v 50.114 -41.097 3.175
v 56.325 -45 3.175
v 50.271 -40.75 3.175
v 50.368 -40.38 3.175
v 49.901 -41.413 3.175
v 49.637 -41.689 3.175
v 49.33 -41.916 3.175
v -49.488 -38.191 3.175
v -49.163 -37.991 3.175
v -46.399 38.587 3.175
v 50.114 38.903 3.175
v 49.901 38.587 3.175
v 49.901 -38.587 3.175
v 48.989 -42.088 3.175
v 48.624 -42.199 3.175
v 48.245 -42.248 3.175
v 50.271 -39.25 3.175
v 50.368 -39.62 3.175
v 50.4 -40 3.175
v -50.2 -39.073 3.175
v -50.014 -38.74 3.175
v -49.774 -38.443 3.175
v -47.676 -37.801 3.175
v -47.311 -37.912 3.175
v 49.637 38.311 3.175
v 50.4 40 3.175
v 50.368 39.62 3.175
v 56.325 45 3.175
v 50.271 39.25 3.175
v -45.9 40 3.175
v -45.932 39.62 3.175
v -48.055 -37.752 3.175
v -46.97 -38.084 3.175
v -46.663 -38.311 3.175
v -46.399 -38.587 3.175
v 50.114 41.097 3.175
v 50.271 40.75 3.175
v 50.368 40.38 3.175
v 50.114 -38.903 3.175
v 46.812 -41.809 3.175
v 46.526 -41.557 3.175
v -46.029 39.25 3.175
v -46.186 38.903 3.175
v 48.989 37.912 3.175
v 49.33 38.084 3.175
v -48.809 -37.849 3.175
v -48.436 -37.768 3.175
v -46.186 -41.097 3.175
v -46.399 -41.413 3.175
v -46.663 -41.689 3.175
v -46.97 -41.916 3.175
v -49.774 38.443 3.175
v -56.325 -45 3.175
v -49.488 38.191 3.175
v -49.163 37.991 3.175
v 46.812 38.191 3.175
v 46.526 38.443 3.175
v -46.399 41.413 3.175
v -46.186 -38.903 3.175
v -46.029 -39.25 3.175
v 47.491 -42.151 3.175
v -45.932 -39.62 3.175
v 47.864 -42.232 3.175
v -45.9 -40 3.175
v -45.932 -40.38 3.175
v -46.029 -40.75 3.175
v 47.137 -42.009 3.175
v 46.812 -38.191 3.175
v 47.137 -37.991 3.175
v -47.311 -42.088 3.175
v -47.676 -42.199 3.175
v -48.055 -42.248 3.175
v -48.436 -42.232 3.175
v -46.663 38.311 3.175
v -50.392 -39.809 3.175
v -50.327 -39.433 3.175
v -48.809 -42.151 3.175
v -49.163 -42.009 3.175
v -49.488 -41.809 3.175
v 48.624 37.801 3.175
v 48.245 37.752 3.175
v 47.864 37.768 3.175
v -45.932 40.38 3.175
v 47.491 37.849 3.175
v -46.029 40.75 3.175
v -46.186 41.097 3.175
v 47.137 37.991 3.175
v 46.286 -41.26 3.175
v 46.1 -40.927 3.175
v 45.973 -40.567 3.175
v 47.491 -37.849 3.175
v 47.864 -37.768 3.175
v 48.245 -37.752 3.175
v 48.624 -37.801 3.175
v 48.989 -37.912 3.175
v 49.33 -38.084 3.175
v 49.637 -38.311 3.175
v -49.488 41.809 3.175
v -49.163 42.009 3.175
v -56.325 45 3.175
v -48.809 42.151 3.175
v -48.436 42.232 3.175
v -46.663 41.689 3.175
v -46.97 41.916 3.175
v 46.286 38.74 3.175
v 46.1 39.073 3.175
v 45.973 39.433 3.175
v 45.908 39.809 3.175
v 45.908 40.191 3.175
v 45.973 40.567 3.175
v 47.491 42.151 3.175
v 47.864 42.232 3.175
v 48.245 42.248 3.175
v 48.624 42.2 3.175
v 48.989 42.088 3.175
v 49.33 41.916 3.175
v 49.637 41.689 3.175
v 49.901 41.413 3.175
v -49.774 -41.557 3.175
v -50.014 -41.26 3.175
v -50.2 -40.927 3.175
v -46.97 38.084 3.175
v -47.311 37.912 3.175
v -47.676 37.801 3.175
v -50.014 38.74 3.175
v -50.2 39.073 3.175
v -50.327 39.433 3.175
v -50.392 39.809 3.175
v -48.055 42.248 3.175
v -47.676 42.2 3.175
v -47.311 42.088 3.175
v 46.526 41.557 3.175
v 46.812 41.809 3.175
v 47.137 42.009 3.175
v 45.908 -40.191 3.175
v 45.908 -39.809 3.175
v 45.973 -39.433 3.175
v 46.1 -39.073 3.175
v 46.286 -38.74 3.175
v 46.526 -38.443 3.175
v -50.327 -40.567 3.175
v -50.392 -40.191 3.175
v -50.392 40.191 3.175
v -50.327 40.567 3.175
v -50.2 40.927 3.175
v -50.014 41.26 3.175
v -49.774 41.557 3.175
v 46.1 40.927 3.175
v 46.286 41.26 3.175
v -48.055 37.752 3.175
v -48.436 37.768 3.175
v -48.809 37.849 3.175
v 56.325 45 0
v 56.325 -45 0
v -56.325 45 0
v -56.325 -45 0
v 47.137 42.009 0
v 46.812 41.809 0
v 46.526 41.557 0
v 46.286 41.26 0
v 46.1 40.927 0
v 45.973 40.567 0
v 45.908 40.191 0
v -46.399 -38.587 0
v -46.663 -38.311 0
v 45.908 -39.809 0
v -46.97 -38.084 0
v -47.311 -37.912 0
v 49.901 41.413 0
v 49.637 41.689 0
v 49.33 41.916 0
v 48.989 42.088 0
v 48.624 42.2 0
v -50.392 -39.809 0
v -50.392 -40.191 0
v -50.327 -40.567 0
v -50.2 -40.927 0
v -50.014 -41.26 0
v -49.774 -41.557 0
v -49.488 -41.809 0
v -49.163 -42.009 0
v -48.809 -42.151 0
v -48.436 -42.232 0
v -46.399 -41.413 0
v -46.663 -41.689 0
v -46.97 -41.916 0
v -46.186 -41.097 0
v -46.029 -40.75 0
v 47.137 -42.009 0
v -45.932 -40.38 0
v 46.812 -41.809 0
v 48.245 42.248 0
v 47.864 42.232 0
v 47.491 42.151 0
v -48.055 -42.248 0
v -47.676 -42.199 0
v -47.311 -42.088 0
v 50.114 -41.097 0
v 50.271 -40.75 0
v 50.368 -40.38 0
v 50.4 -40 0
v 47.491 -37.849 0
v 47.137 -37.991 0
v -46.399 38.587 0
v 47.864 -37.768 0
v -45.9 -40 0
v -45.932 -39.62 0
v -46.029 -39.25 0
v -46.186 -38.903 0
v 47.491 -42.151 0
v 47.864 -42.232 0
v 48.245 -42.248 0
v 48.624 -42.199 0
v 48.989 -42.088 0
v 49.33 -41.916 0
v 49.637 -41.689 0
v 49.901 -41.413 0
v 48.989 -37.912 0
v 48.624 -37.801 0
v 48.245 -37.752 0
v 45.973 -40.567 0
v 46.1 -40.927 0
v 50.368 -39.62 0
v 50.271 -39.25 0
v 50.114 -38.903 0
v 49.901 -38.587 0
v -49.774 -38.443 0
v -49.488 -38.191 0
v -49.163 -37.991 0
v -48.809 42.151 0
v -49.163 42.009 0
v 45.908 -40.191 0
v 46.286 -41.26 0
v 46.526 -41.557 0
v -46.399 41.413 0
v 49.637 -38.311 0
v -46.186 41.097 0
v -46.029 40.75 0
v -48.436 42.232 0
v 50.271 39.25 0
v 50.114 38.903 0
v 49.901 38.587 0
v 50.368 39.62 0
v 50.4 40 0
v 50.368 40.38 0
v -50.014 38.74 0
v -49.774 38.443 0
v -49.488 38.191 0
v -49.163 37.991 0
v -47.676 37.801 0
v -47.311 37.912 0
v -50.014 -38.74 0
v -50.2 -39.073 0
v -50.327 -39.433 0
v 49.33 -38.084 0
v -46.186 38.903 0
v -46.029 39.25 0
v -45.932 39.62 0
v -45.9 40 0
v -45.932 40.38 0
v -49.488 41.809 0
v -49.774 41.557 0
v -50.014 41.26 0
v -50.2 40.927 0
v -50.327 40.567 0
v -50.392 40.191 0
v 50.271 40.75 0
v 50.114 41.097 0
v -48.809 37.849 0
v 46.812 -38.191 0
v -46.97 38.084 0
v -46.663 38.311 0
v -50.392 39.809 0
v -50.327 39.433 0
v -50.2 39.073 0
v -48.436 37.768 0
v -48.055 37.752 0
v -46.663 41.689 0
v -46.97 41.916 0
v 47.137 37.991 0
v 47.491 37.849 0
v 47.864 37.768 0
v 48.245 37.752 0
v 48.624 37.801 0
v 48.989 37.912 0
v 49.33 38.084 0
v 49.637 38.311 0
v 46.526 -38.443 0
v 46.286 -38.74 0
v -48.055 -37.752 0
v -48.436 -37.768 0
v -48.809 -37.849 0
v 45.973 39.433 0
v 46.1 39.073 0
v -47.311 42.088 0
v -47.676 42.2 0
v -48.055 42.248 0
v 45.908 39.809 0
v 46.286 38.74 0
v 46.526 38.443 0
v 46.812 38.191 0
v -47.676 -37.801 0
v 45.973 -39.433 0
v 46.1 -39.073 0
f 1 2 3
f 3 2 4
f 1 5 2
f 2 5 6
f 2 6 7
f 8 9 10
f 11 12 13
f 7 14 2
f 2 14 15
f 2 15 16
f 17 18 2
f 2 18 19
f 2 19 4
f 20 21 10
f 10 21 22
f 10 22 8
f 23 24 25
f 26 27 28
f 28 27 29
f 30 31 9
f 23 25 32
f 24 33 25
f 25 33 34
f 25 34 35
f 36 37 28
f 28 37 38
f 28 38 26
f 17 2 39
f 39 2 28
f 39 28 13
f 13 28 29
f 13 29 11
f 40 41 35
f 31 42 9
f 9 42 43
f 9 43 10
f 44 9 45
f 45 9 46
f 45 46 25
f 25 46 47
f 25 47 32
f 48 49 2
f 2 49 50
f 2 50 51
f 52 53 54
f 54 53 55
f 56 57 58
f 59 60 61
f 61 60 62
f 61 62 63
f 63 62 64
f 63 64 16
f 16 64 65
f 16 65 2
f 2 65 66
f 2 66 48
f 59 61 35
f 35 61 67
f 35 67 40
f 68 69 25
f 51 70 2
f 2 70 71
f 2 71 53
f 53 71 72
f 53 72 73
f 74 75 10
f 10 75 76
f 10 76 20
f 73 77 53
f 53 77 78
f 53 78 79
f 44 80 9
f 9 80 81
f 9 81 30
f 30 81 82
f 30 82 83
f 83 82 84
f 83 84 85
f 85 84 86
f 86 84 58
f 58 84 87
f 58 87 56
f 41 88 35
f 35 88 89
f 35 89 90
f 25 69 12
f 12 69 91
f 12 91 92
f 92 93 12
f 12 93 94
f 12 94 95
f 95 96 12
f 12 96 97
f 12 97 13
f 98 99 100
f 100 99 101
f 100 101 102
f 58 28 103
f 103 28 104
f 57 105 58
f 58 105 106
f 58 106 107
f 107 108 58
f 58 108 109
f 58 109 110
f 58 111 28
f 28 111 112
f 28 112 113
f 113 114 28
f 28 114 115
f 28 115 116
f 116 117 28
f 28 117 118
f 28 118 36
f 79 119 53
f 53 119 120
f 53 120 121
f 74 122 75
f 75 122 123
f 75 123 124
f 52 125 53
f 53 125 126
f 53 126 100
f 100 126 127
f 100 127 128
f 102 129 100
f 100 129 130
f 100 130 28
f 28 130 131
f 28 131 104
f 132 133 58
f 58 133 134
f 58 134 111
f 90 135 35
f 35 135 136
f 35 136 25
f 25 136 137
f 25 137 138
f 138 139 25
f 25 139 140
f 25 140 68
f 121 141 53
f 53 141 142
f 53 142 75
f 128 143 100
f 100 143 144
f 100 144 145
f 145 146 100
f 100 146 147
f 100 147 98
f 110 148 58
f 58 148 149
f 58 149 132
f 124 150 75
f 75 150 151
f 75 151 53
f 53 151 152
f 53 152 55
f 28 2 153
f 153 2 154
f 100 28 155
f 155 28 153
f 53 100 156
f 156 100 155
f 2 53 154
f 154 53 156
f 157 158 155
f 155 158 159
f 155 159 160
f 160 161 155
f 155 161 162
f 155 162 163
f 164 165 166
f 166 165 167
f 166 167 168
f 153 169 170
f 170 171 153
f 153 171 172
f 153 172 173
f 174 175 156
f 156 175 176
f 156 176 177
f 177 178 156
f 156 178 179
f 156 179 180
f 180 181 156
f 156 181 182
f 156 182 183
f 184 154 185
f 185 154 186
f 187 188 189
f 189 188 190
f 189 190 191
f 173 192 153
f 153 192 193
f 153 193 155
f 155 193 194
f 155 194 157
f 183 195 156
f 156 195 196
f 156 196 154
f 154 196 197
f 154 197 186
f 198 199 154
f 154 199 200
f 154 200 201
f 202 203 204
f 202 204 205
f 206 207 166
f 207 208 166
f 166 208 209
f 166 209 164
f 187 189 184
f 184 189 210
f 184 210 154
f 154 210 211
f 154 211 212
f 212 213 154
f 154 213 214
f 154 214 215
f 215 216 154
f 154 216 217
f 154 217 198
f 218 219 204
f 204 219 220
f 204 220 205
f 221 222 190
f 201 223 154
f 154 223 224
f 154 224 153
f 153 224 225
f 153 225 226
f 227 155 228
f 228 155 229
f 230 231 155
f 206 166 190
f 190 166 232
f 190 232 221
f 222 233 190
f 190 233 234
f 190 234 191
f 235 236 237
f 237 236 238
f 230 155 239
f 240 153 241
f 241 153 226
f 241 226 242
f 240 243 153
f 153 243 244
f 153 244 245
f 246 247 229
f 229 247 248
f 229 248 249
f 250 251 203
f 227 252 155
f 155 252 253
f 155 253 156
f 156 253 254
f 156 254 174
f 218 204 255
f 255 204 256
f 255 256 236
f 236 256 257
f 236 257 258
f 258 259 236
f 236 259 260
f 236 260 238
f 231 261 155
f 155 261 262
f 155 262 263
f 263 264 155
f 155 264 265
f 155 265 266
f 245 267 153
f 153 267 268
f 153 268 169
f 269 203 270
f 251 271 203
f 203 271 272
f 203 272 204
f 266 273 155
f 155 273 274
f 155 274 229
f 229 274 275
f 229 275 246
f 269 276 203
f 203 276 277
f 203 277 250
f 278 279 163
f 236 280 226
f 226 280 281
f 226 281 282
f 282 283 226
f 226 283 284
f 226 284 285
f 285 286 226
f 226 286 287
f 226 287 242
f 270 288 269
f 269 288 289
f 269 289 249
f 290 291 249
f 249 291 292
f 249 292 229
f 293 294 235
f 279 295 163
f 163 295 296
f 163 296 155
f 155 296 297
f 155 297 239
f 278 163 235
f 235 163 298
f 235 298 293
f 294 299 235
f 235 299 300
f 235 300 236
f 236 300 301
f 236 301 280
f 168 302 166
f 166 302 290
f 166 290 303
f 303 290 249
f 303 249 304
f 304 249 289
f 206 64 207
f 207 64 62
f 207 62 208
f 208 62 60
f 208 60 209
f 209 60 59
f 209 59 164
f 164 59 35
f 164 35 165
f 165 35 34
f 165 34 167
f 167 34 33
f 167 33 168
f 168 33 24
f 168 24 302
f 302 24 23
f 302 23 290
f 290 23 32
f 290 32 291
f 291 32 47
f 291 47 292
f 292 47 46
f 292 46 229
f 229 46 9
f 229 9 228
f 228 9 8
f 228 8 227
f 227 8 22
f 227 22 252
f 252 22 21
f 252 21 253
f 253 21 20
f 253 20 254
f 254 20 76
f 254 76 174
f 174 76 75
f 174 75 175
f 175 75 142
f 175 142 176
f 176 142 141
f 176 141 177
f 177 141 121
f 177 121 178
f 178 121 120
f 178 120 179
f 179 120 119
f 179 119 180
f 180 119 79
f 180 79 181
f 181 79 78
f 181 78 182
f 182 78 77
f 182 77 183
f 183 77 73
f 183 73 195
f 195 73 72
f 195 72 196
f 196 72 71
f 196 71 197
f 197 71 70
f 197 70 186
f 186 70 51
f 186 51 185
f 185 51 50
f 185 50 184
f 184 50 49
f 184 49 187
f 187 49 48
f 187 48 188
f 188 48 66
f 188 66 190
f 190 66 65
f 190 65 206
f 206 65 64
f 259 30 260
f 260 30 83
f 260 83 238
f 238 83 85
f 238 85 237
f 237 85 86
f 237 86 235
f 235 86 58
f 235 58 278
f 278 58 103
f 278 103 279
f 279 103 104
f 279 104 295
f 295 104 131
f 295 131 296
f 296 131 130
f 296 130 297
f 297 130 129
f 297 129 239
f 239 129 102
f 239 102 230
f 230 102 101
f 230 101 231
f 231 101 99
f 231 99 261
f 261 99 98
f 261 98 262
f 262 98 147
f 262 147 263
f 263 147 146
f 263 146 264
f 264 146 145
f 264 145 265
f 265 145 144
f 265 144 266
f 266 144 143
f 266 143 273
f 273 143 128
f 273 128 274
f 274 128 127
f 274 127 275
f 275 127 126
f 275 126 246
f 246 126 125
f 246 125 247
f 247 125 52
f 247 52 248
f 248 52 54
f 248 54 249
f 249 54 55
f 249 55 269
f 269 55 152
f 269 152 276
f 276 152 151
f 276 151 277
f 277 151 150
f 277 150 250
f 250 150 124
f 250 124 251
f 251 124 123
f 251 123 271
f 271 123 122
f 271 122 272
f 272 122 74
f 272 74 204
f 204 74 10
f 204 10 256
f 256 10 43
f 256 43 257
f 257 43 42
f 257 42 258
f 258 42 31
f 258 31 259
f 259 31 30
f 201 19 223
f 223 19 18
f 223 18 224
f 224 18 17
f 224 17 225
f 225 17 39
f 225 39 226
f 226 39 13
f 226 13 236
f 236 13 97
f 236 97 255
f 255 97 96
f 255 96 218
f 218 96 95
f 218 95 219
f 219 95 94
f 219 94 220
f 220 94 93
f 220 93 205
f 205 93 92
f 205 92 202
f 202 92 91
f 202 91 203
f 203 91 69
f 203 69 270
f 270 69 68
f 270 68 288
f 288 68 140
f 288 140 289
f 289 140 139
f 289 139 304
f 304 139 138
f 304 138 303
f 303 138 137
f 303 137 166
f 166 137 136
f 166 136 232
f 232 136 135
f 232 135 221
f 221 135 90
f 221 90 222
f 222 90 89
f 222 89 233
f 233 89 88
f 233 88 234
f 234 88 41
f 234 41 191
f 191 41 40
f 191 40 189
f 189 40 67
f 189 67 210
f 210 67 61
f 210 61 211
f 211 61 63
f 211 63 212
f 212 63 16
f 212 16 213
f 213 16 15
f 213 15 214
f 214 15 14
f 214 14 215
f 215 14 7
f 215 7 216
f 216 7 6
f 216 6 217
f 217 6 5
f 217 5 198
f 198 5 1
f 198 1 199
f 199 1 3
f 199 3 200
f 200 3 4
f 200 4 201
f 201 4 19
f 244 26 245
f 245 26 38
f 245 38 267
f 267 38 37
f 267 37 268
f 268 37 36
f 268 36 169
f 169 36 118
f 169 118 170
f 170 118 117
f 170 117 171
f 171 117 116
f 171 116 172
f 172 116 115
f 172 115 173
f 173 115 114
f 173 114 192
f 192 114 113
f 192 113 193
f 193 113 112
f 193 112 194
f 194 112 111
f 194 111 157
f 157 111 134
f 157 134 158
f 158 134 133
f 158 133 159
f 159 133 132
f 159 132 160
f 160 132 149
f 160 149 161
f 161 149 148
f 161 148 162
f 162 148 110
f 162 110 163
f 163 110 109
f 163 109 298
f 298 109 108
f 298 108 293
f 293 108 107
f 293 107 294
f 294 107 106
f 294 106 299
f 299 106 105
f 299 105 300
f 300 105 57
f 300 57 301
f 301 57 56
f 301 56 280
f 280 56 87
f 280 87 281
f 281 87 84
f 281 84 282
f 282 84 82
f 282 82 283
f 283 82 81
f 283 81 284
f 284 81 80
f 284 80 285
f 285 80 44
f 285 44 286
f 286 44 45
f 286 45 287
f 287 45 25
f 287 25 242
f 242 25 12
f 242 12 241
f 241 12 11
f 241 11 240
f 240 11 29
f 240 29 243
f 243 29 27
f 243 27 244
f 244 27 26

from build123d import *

# Parameters (mm, degrees)
SKETCH1_W                            = 112.65
SKETCH1_H                            = 90
BOSS_EXTRUDE1_DEPTH                  = 3.175
M4_CLEARANCE_HOLE1_D                 = 4.5
MIRROR1_AT_THE_SECOND_PLANE_COPY_1_D = 4.5


with BuildPart() as part:
    # Sketch1 → Boss-Extrude1 (new body)
    with BuildSketch(Plane.XY):
        Rectangle(SKETCH1_W, SKETCH1_H)
    extrude(amount=BOSS_EXTRUDE1_DEPTH)

    # M4 Clearance Hole1 (through all)
    with Locations(Plane.XY.offset(3.175)):
        with Locations((-48.15, -40)):
            m4_clearance_hole1 = Hole(M4_CLEARANCE_HOLE1_D / 2)

    # Mirror1: M4 Clearance Hole1 across plane
    add(m4_clearance_hole1.mirror(Plane(origin=(0, 0, 0), x_dir=(0, 0, 1), z_dir=(1, 0, 0))), mode=Mode.SUBTRACT)

    # Mirror1 at the second plane: M4 Clearance Hole1 across plane
    add(m4_clearance_hole1.mirror(Plane.ZX), mode=Mode.SUBTRACT)

    # Mirror1 at the second plane copy 1 (through all)
    with Locations(Plane(origin=(0, 0, 3.175), x_dir=(-1, 0, 0), z_dir=(0, 0, 1))):
        with Locations((-48.15, -40)):
            Hole(MIRROR1_AT_THE_SECOND_PLANE_COPY_1_D / 2)


solid = part.part
